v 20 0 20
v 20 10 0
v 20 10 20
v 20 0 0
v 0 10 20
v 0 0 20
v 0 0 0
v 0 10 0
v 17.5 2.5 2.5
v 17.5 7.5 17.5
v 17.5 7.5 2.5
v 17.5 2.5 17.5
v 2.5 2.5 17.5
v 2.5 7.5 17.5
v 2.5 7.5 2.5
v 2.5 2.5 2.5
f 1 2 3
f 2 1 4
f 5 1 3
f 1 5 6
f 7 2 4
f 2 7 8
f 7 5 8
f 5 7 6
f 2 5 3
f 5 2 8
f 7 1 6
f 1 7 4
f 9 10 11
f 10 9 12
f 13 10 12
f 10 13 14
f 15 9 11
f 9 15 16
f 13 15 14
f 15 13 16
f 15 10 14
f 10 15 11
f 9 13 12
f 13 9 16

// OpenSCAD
lamp_x = 20;
lamp_y = 10;
lamp_z = 20;

lamp_inside_x = (lamp_x - 5);
lamp_inside_y = (lamp_y - 5);
lamp_inside_z = (lamp_z - 5);





//main body
module main_body(){
   cube([lamp_x,lamp_y,lamp_z]);}
module cube_inside(x,y,z,inside_x,inside_y,inside_z){
   lamp_pos_x = (x-inside_x)/2;
   lamp_pos_y = (y-inside_y)/2;
   lamp_pos_z = (z-inside_z)/2;
   
   translate([lamp_pos_x,lamp_pos_y,lamp_pos_z]){
	  cube([inside_x,inside_y,inside_z]);}
   ;}   
module main(){
   difference(){
	  main_body();
	  cube_inside(lamp_x,lamp_y,lamp_z,lamp_inside_x,lamp_inside_y,lamp_inside_z);}
}

main();
